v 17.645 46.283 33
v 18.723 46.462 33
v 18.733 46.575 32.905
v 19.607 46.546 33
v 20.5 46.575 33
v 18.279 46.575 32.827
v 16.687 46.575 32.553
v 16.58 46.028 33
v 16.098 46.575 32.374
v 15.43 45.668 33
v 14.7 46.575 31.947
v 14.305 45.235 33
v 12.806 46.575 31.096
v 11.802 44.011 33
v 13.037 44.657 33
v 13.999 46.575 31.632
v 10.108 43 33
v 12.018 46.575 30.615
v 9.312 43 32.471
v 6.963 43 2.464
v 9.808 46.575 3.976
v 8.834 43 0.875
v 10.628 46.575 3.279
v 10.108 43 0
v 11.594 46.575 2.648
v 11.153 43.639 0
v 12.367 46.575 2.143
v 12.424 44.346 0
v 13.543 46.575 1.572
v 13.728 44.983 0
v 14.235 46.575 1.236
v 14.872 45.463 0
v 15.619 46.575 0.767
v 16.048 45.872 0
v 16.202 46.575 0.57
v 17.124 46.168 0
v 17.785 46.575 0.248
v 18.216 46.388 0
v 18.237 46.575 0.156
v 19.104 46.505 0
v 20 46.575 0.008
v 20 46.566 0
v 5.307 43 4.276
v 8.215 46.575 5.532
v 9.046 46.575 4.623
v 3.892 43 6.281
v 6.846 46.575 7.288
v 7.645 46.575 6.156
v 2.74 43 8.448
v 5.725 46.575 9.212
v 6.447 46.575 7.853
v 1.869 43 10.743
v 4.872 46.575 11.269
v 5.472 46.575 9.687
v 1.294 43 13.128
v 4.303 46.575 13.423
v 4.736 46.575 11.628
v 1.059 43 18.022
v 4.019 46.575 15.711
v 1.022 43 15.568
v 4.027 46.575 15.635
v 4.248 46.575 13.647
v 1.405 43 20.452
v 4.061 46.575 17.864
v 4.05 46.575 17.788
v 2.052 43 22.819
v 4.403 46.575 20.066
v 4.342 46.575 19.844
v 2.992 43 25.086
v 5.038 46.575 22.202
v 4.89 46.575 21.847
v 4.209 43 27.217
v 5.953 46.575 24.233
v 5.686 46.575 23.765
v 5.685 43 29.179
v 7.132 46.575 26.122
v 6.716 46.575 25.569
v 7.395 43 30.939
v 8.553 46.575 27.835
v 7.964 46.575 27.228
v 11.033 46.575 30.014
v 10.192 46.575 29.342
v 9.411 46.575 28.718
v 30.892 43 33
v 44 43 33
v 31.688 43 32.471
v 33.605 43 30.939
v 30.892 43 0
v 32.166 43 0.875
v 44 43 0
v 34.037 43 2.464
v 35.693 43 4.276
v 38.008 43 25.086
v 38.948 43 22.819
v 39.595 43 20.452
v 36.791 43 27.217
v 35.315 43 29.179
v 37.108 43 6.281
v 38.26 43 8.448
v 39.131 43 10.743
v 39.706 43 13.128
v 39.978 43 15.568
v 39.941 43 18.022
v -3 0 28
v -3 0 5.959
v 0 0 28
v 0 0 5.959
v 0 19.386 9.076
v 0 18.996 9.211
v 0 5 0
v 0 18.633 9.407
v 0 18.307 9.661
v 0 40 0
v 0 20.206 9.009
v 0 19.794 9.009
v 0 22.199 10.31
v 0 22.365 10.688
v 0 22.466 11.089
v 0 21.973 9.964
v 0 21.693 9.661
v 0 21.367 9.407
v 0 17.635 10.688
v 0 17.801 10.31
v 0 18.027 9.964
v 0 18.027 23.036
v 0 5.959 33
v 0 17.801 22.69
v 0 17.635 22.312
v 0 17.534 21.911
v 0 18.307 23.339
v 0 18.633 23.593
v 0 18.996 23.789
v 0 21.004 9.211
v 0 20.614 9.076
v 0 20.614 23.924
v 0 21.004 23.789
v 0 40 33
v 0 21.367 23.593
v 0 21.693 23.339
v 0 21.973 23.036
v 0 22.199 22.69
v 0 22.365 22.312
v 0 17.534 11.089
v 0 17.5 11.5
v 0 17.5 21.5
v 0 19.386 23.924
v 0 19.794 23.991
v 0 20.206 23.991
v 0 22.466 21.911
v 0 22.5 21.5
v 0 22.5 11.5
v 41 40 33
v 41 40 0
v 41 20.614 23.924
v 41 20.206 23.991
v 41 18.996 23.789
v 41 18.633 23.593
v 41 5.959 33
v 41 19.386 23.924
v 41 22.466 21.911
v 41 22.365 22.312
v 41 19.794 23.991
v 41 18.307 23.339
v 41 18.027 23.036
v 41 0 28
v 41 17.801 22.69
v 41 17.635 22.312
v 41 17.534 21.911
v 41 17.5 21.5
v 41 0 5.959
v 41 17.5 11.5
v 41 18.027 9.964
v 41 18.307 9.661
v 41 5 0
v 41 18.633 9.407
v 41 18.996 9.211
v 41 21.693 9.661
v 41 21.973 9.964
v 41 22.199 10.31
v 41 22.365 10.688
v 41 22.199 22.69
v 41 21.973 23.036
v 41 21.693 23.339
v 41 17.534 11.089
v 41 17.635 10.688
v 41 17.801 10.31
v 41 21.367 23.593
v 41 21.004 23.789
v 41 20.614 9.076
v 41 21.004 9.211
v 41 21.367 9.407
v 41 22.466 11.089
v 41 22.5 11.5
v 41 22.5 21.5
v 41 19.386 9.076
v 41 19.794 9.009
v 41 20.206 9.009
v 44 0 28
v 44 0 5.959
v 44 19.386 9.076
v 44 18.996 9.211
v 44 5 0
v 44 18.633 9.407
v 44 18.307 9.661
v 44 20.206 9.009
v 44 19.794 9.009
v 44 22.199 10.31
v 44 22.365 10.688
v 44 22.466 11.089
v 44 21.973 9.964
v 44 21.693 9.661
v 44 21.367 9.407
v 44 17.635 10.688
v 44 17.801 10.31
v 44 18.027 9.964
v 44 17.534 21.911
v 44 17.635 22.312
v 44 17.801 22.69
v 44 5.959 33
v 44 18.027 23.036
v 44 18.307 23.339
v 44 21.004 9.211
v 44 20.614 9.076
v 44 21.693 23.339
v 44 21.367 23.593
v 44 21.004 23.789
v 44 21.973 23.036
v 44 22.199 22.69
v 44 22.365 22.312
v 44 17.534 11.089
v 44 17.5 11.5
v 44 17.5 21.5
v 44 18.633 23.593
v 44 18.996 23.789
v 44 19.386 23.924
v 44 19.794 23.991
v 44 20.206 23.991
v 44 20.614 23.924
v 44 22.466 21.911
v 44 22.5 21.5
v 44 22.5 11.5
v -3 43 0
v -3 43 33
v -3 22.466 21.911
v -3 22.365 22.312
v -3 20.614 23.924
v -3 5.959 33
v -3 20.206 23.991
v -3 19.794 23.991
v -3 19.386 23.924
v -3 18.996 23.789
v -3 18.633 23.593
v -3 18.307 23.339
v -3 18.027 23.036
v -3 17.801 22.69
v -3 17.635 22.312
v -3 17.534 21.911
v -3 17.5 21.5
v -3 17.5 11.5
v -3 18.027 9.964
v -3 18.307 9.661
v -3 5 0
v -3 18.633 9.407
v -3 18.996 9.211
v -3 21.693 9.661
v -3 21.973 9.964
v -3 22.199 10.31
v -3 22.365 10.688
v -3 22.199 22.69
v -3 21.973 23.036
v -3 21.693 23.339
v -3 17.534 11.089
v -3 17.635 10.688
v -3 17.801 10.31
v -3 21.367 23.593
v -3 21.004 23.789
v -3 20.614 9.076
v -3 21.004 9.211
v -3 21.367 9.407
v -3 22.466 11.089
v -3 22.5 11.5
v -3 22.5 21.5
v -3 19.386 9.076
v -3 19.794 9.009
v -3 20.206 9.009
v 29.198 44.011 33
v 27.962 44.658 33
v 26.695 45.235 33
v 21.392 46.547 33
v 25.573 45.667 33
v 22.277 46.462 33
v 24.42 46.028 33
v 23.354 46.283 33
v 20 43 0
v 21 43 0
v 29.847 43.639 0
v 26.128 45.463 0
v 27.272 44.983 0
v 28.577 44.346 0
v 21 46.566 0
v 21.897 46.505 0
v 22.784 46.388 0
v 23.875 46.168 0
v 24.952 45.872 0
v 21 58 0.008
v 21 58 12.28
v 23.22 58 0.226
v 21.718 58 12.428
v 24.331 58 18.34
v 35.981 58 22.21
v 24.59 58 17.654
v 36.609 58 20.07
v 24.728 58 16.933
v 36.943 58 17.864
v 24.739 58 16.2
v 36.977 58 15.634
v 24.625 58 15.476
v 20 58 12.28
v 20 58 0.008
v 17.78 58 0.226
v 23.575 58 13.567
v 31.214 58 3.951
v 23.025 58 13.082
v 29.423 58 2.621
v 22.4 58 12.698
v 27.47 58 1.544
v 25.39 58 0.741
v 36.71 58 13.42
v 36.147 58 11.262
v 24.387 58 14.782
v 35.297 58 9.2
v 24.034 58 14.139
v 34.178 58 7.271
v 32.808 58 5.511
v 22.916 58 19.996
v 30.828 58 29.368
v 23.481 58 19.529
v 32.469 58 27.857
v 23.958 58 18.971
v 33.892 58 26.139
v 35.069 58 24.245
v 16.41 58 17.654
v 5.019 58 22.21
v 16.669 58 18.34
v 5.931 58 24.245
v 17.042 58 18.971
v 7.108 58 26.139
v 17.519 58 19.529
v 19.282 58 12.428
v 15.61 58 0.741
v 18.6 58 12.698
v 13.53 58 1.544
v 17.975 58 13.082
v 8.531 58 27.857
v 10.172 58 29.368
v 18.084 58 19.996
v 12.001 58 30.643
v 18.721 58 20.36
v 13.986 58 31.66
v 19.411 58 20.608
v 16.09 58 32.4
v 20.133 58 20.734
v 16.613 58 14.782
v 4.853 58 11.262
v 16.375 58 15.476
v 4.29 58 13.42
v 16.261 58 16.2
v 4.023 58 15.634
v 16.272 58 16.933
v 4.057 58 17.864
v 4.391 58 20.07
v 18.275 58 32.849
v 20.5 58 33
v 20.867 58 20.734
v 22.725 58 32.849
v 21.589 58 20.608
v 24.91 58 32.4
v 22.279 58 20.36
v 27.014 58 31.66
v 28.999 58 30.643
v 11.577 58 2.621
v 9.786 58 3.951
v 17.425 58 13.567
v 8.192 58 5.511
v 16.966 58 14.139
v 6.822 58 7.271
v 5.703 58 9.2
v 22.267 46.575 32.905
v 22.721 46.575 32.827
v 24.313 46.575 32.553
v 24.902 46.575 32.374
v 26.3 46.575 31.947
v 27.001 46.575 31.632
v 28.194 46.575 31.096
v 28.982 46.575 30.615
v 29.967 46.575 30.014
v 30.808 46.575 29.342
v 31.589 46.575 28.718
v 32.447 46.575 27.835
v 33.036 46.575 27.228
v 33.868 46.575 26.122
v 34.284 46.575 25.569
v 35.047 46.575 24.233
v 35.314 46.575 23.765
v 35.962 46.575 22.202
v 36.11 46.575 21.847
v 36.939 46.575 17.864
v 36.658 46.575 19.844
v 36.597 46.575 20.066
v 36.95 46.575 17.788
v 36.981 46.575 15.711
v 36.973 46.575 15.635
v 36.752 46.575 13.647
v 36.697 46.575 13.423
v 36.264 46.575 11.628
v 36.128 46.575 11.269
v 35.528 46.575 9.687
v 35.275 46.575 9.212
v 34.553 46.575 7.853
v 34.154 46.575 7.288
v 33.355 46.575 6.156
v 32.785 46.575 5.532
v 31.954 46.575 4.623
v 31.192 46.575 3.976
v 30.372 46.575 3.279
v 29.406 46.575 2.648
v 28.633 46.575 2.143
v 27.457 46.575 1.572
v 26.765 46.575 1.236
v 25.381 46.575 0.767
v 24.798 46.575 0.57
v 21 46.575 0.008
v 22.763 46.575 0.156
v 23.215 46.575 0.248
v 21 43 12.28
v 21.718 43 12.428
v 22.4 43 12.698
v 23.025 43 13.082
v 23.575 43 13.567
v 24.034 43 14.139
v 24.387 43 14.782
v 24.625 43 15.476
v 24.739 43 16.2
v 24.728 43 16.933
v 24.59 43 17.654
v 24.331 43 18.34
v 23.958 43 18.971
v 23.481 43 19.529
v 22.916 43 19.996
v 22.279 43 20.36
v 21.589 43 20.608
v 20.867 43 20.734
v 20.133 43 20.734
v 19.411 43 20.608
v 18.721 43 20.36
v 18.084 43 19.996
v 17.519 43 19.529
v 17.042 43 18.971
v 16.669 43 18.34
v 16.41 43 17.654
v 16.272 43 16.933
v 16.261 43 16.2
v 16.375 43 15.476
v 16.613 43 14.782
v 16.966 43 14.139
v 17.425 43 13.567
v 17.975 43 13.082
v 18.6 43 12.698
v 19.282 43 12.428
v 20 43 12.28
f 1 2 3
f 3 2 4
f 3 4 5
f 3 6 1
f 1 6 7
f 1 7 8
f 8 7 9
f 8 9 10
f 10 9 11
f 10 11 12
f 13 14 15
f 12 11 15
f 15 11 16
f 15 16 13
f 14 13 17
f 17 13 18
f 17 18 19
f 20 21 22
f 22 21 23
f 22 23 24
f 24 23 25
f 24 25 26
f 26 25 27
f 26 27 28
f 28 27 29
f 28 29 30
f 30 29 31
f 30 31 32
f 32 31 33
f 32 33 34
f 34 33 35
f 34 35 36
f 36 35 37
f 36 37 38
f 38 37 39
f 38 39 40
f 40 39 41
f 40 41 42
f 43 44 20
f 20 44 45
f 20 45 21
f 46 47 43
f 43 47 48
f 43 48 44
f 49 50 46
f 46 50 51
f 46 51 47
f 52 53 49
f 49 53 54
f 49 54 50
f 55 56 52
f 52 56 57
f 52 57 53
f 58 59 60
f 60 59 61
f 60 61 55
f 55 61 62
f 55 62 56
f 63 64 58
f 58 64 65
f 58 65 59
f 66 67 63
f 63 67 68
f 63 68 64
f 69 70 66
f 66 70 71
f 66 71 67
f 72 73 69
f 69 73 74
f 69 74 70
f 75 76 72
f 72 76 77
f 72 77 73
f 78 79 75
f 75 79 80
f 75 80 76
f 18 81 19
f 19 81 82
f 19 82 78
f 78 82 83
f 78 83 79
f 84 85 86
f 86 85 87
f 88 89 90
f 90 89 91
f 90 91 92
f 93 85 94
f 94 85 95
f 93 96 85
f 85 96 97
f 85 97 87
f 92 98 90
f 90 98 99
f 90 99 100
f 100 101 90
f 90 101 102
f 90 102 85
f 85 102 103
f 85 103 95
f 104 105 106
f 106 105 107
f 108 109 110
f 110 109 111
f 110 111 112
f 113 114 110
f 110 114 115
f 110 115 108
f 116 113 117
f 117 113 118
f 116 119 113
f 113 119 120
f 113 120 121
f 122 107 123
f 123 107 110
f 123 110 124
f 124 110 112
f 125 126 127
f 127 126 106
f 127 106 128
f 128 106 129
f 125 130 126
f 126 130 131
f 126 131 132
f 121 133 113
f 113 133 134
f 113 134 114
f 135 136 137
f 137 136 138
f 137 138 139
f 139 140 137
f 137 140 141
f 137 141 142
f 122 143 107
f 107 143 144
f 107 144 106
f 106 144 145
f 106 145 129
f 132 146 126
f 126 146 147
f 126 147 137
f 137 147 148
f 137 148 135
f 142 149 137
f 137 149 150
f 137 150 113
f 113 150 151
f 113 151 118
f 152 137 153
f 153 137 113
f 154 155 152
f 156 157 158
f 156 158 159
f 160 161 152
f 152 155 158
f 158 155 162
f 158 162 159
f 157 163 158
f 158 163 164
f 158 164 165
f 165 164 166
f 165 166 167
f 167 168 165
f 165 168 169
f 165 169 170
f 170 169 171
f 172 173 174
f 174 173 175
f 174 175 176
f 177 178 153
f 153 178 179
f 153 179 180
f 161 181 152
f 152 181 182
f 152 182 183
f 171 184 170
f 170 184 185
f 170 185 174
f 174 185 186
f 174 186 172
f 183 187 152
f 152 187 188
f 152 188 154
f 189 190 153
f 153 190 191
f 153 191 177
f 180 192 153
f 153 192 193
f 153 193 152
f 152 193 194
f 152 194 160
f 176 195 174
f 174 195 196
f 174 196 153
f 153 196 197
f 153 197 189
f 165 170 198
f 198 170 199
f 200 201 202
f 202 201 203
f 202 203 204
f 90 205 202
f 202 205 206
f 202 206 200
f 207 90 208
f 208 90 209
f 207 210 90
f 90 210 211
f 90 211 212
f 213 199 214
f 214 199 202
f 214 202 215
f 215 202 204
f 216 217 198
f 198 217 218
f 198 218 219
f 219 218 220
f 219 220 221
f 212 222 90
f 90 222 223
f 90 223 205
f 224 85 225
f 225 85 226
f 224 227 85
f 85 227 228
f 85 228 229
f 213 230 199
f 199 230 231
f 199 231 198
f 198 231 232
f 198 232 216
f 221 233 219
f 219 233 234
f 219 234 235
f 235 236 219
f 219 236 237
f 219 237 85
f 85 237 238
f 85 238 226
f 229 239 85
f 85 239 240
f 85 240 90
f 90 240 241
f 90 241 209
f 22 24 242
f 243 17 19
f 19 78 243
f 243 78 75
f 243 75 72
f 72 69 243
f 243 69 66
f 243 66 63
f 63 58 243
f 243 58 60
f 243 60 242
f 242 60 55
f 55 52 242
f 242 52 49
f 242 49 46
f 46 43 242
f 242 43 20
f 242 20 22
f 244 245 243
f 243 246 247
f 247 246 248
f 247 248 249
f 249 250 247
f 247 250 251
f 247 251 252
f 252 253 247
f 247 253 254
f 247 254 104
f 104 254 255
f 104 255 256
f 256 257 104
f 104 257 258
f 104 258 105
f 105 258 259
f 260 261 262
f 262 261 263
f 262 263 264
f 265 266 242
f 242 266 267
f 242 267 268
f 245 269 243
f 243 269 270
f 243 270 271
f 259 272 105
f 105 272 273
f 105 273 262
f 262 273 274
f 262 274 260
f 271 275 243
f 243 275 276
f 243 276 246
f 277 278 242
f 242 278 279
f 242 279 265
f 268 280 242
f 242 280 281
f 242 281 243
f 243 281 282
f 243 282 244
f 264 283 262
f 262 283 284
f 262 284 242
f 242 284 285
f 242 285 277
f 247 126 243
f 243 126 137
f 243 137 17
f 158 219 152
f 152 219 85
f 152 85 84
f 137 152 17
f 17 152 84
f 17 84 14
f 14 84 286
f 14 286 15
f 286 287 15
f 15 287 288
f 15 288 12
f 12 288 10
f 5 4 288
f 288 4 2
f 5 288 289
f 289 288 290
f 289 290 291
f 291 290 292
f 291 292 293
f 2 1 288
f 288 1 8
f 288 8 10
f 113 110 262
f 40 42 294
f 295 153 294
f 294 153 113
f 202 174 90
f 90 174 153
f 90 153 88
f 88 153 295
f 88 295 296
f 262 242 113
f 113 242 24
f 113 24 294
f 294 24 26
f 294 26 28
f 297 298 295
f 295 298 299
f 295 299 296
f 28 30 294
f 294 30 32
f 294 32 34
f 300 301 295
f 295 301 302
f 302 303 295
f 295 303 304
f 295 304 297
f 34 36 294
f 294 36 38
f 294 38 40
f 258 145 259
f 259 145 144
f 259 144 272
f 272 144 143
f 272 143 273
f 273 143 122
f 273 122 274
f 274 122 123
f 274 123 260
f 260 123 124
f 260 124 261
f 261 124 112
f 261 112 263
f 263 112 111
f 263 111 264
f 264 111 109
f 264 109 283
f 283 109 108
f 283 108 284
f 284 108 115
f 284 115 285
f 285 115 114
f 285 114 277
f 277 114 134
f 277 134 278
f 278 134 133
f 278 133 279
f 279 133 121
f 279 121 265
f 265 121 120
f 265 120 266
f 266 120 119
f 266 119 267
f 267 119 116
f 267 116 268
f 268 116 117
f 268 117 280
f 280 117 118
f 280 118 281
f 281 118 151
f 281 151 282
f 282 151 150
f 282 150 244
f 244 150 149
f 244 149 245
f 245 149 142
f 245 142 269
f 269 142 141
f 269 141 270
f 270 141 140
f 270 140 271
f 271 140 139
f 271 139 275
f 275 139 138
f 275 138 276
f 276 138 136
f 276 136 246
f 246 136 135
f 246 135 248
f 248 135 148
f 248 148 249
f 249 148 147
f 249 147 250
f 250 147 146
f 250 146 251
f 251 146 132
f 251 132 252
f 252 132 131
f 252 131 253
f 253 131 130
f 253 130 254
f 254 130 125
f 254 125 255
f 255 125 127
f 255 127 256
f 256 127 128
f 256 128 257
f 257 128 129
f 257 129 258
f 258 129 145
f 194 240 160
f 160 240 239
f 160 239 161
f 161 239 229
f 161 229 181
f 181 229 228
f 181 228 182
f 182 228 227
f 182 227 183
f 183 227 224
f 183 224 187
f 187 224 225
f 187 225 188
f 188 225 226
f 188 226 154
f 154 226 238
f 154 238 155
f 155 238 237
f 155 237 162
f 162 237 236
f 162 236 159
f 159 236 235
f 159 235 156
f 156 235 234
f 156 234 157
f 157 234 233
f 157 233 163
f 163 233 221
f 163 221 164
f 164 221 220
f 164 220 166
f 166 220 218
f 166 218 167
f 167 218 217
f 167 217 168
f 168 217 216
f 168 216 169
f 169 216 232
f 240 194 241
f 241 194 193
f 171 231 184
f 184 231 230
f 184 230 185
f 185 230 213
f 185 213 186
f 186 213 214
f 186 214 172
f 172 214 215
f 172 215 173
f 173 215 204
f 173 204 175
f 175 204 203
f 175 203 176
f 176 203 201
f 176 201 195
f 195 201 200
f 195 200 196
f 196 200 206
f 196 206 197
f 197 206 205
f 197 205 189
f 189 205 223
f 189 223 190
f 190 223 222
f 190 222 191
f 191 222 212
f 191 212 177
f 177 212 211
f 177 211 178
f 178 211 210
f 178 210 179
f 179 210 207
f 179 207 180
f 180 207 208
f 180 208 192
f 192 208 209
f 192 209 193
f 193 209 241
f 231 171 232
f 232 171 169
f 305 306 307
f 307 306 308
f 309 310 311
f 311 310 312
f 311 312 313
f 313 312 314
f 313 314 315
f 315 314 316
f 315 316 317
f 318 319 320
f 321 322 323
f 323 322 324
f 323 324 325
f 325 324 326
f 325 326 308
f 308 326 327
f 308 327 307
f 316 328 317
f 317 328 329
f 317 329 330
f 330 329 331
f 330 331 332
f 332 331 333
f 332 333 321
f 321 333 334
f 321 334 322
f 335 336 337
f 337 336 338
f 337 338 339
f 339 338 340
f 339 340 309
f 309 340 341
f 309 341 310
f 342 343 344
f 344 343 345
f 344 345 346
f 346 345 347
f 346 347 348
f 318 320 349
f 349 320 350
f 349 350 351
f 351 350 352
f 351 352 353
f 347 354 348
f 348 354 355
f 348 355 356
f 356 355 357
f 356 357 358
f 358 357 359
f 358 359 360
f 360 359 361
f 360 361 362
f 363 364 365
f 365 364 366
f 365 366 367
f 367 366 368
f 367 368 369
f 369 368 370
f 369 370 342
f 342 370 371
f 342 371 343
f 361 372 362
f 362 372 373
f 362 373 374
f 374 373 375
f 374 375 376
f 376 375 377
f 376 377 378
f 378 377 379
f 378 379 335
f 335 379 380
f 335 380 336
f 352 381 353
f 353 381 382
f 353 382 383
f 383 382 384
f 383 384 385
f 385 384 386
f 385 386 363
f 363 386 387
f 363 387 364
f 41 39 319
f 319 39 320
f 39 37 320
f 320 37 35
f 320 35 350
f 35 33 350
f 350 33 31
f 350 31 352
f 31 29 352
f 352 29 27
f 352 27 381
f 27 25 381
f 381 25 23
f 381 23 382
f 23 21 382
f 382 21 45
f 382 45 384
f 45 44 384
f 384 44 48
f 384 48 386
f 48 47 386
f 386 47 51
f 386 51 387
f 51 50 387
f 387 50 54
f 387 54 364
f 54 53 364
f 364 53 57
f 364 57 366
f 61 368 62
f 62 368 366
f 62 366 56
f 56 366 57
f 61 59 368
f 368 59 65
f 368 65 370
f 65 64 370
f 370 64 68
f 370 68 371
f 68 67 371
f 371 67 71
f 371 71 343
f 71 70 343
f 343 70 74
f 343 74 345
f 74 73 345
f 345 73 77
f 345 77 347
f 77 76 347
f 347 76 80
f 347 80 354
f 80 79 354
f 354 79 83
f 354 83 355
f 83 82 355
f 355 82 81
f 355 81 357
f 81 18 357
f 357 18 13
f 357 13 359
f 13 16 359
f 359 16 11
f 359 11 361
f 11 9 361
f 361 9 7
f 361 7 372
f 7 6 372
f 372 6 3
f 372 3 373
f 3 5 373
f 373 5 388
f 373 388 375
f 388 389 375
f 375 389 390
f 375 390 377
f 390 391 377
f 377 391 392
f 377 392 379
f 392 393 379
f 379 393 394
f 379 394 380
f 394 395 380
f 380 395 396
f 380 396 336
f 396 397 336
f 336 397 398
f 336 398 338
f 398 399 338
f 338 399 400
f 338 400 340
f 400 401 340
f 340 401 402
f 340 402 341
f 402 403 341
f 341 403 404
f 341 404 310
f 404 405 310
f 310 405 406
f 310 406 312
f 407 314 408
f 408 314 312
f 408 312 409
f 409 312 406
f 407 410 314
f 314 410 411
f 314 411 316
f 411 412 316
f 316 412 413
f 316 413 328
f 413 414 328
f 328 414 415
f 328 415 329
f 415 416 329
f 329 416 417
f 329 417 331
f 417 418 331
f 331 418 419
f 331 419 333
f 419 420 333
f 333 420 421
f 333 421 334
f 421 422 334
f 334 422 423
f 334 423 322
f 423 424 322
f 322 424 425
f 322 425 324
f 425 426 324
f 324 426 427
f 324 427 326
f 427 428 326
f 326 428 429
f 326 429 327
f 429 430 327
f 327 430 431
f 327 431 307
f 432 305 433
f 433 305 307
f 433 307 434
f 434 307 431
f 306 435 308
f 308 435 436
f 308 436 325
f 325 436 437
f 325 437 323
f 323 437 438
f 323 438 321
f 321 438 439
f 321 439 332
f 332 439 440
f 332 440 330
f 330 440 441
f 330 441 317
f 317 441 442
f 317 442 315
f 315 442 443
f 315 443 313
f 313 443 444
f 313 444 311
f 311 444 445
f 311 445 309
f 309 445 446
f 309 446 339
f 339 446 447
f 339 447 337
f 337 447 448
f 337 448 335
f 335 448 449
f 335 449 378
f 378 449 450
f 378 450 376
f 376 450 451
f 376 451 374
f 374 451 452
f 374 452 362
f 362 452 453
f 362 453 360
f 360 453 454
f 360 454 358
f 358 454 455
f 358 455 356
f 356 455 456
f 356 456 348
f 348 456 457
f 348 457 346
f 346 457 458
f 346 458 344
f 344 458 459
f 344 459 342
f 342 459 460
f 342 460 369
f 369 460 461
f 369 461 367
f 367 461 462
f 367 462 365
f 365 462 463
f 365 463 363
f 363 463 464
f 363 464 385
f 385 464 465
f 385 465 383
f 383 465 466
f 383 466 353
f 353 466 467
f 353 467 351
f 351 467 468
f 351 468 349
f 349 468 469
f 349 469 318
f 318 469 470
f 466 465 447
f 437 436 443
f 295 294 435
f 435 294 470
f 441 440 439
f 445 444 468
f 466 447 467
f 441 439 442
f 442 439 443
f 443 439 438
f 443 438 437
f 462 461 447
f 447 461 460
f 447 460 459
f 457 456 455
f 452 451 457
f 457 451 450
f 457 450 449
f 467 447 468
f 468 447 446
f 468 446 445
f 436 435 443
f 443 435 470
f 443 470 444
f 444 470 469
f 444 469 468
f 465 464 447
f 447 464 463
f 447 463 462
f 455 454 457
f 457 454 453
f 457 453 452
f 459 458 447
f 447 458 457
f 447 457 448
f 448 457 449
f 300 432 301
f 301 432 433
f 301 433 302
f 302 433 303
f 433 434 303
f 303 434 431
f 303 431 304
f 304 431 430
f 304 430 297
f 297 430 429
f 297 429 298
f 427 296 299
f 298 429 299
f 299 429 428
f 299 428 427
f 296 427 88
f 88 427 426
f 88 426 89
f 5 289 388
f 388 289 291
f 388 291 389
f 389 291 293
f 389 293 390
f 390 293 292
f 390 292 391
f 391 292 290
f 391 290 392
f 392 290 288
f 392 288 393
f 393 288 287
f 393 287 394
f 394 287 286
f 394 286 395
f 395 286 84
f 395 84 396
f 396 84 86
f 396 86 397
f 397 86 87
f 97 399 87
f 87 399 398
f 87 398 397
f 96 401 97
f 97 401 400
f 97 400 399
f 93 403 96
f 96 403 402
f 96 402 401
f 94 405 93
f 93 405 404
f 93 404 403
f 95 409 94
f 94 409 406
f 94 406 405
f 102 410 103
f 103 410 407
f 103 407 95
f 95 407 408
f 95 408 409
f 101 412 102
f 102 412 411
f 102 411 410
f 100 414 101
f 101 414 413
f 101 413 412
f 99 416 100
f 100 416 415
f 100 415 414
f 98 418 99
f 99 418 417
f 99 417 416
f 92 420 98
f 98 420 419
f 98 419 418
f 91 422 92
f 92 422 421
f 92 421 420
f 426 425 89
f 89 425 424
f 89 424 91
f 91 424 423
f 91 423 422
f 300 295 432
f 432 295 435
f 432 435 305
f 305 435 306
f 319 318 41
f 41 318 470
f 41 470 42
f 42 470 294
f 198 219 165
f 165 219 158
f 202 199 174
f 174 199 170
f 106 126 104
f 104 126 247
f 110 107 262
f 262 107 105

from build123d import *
from OCP.BRepFilletAPI import BRepFilletAPI_MakeChamfer

# Parameters (mm, degrees)
BOSS_EXTRUDE1_DEPTH     = 33
CUT_EXTRUDE2_DEPTH      = 70.814038703
CUT_EXTRUDE2_DEPTH_BACK = 70.814038703
SKETCH5_R               = 16.5
SKETCH5_R_2             = 4.25
BOSS_EXTRUDE2_DEPTH     = 15
CHAMFER1_SIZE           = 3
CHAMFER1_SIZE_2         = 3.575260778
CUT_EXTRUDE_THIN1_START = -15
SKETCH6_W               = 1
SKETCH6_H               = 51.277142369
CUT_EXTRUDE_THIN1_DEPTH = 15
CHAMFER2_SIZE           = 5
CHAMFER2_SIZE2          = 5.958767963


with BuildPart() as part:
    # Sketch1 → Boss-Extrude1 (new body)
    with BuildSketch(Plane.XY):
        Polygon((0, 0), (0, 40), (41, 40), (41, 0), (44, 0), (44, 43), (-3, 43), (-3, 0), align=None)
    extrude(amount=BOSS_EXTRUDE1_DEPTH)

    # Sketch4 → Cut-Extrude2 (cut, two sides: drawn at the far end of the back side and taken through both)
    with BuildSketch(Plane(origin=(0, 0, 0), x_dir=(0, 0, -1), z_dir=(1, 0, 0)).offset(-CUT_EXTRUDE2_DEPTH_BACK)):
        with BuildLine():
            Line((-21.5, 22.5), (-11.5, 22.5))
            ThreePointArc((-11.5, 22.5), (-9, 20), (-11.5, 17.5))
            Line((-11.5, 17.5), (-21.5, 17.5))
            ThreePointArc((-21.5, 17.5), (-24, 20), (-21.5, 22.5))
        make_face()
    extrude(amount=CUT_EXTRUDE2_DEPTH + CUT_EXTRUDE2_DEPTH_BACK, mode=Mode.SUBTRACT)

    # Sketch5 → Boss-Extrude2 (add)
    with BuildSketch(Plane(origin=(0, 43, 0), x_dir=(1, 0, 0), z_dir=(0, 1, 0))):
        with Locations(Location((20.5, -16.5, 0), (0, 0, 270))):
            Circle(SKETCH5_R)
        with Locations(Location((20.5, -16.5, 0), (0, 0, 270))):
            Circle(SKETCH5_R_2, mode=Mode.SUBTRACT)
    extrude(amount=BOSS_EXTRUDE2_DEPTH)

    # Chamfer1
    # the kernel refuses this chamfer: 3.575260778, 3 mm, written as the material it adds along each edge
    with BuildSketch(Plane(origin=(20.5, 43, 16.5), x_dir=(0, 0, -1), z_dir=(1, 0, 0))) as chamfer1_piece_1_section:
        Polygon((16.5 + CHAMFER1_SIZE, 0), (16.5, CHAMFER1_SIZE_2), (16.5, 0), align=None)
    chamfer1_piece_1 = revolve(axis=Axis((20.5, 43, 16.5), (0, 1, 0)), revolution_arc=180, mode=Mode.PRIVATE)
    chamfer1_piece_1 = split(chamfer1_piece_1, bisect_by=Plane(origin=(2.547299358, 44.747941515, 0), z_dir=(0, 0, 1)), keep=Keep.TOP, mode=Mode.PRIVATE)
    chamfer1_piece_1 = split(chamfer1_piece_1, bisect_by=Plane(origin=(2.547299358, 44.747941515, 33), z_dir=(0, 0, -1)), keep=Keep.TOP, mode=Mode.PRIVATE)
    add(chamfer1_piece_1)
    with BuildSketch(Plane(origin=(20.5, 43, 16.5), x_dir=(0, 0, 1), z_dir=(-1, 0, 0))) as chamfer1_piece_2_section:
        Polygon((16.5 + CHAMFER1_SIZE, 0), (16.5, CHAMFER1_SIZE_2), (16.5, 0), align=None)
    chamfer1_piece_2 = revolve(axis=Axis((20.5, 43, 16.5), (0, 1, 0)), revolution_arc=180, mode=Mode.PRIVATE)
    chamfer1_piece_2 = split(chamfer1_piece_2, bisect_by=Plane(origin=(38.452700642, 44.747941515, 0), z_dir=(0, 0, 1)), keep=Keep.TOP, mode=Mode.PRIVATE)
    chamfer1_piece_2 = split(chamfer1_piece_2, bisect_by=Plane(origin=(38.452700642, 44.747941515, 33), z_dir=(0, 0, -1)), keep=Keep.TOP, mode=Mode.PRIVATE)
    add(chamfer1_piece_2)

    # Sketch6 → Cut-Extrude-Thin1 (cut)
    with BuildSketch(Plane(origin=(0, 58, 0), x_dir=(1, 0, 0), z_dir=(0, 1, 0)).offset(CUT_EXTRUDE_THIN1_START)):
        with Locations((20.5, 9.138571185)):
            Rectangle(SKETCH6_W, SKETCH6_H)
    extrude(amount=CUT_EXTRUDE_THIN1_DEPTH, mode=Mode.SUBTRACT)

    # Chamfer2: one chamfer whose edges measure the first distance from different faces: ONE call of the kernel's chamfer builder (chamfer() names one face for all edges)
    chamfer2_edges_1 = [part.edges().sort_by_distance(p)[0] for p in [
        (-1.5, 0, 0),
        (42.5, 0, 0),
    ]]
    chamfer2_side_1 = [part.faces().sort_by_distance(p)[0] for p in [
        (25.936545793, 44.827539599, 0),
    ]]
    chamfer2_edges_2 = [part.edges().sort_by_distance(p)[0] for p in [
        (42.5, 0, 33),
    ]]
    chamfer2_side_2 = [part.faces().sort_by_distance(p)[0] for p in [
        (42.5, 0, 16.5),
    ]]
    chamfer2_edges_3 = [part.edges().sort_by_distance(p)[0] for p in [
        (-1.5, 0, 33),
    ]]
    chamfer2_side_3 = [part.faces().sort_by_distance(p)[0] for p in [
        (-1.5, 0, 16.5),
    ]]
    chamfer2 = BRepFilletAPI_MakeChamfer(part.part.solid().wrapped)
    for e in chamfer2_edges_1:
        chamfer2.Add(CHAMFER2_SIZE, CHAMFER2_SIZE2, e.wrapped, chamfer2_side_1[0].wrapped)  # the first distance lies on this face
    for e in chamfer2_edges_2:
        chamfer2.Add(CHAMFER2_SIZE, CHAMFER2_SIZE2, e.wrapped, chamfer2_side_2[0].wrapped)  # the first distance lies on this face
    for e in chamfer2_edges_3:
        chamfer2.Add(CHAMFER2_SIZE, CHAMFER2_SIZE2, e.wrapped, chamfer2_side_3[0].wrapped)  # the first distance lies on this face
    add(Compound.cast(chamfer2.Shape()), mode=Mode.REPLACE)


solid = part.part
